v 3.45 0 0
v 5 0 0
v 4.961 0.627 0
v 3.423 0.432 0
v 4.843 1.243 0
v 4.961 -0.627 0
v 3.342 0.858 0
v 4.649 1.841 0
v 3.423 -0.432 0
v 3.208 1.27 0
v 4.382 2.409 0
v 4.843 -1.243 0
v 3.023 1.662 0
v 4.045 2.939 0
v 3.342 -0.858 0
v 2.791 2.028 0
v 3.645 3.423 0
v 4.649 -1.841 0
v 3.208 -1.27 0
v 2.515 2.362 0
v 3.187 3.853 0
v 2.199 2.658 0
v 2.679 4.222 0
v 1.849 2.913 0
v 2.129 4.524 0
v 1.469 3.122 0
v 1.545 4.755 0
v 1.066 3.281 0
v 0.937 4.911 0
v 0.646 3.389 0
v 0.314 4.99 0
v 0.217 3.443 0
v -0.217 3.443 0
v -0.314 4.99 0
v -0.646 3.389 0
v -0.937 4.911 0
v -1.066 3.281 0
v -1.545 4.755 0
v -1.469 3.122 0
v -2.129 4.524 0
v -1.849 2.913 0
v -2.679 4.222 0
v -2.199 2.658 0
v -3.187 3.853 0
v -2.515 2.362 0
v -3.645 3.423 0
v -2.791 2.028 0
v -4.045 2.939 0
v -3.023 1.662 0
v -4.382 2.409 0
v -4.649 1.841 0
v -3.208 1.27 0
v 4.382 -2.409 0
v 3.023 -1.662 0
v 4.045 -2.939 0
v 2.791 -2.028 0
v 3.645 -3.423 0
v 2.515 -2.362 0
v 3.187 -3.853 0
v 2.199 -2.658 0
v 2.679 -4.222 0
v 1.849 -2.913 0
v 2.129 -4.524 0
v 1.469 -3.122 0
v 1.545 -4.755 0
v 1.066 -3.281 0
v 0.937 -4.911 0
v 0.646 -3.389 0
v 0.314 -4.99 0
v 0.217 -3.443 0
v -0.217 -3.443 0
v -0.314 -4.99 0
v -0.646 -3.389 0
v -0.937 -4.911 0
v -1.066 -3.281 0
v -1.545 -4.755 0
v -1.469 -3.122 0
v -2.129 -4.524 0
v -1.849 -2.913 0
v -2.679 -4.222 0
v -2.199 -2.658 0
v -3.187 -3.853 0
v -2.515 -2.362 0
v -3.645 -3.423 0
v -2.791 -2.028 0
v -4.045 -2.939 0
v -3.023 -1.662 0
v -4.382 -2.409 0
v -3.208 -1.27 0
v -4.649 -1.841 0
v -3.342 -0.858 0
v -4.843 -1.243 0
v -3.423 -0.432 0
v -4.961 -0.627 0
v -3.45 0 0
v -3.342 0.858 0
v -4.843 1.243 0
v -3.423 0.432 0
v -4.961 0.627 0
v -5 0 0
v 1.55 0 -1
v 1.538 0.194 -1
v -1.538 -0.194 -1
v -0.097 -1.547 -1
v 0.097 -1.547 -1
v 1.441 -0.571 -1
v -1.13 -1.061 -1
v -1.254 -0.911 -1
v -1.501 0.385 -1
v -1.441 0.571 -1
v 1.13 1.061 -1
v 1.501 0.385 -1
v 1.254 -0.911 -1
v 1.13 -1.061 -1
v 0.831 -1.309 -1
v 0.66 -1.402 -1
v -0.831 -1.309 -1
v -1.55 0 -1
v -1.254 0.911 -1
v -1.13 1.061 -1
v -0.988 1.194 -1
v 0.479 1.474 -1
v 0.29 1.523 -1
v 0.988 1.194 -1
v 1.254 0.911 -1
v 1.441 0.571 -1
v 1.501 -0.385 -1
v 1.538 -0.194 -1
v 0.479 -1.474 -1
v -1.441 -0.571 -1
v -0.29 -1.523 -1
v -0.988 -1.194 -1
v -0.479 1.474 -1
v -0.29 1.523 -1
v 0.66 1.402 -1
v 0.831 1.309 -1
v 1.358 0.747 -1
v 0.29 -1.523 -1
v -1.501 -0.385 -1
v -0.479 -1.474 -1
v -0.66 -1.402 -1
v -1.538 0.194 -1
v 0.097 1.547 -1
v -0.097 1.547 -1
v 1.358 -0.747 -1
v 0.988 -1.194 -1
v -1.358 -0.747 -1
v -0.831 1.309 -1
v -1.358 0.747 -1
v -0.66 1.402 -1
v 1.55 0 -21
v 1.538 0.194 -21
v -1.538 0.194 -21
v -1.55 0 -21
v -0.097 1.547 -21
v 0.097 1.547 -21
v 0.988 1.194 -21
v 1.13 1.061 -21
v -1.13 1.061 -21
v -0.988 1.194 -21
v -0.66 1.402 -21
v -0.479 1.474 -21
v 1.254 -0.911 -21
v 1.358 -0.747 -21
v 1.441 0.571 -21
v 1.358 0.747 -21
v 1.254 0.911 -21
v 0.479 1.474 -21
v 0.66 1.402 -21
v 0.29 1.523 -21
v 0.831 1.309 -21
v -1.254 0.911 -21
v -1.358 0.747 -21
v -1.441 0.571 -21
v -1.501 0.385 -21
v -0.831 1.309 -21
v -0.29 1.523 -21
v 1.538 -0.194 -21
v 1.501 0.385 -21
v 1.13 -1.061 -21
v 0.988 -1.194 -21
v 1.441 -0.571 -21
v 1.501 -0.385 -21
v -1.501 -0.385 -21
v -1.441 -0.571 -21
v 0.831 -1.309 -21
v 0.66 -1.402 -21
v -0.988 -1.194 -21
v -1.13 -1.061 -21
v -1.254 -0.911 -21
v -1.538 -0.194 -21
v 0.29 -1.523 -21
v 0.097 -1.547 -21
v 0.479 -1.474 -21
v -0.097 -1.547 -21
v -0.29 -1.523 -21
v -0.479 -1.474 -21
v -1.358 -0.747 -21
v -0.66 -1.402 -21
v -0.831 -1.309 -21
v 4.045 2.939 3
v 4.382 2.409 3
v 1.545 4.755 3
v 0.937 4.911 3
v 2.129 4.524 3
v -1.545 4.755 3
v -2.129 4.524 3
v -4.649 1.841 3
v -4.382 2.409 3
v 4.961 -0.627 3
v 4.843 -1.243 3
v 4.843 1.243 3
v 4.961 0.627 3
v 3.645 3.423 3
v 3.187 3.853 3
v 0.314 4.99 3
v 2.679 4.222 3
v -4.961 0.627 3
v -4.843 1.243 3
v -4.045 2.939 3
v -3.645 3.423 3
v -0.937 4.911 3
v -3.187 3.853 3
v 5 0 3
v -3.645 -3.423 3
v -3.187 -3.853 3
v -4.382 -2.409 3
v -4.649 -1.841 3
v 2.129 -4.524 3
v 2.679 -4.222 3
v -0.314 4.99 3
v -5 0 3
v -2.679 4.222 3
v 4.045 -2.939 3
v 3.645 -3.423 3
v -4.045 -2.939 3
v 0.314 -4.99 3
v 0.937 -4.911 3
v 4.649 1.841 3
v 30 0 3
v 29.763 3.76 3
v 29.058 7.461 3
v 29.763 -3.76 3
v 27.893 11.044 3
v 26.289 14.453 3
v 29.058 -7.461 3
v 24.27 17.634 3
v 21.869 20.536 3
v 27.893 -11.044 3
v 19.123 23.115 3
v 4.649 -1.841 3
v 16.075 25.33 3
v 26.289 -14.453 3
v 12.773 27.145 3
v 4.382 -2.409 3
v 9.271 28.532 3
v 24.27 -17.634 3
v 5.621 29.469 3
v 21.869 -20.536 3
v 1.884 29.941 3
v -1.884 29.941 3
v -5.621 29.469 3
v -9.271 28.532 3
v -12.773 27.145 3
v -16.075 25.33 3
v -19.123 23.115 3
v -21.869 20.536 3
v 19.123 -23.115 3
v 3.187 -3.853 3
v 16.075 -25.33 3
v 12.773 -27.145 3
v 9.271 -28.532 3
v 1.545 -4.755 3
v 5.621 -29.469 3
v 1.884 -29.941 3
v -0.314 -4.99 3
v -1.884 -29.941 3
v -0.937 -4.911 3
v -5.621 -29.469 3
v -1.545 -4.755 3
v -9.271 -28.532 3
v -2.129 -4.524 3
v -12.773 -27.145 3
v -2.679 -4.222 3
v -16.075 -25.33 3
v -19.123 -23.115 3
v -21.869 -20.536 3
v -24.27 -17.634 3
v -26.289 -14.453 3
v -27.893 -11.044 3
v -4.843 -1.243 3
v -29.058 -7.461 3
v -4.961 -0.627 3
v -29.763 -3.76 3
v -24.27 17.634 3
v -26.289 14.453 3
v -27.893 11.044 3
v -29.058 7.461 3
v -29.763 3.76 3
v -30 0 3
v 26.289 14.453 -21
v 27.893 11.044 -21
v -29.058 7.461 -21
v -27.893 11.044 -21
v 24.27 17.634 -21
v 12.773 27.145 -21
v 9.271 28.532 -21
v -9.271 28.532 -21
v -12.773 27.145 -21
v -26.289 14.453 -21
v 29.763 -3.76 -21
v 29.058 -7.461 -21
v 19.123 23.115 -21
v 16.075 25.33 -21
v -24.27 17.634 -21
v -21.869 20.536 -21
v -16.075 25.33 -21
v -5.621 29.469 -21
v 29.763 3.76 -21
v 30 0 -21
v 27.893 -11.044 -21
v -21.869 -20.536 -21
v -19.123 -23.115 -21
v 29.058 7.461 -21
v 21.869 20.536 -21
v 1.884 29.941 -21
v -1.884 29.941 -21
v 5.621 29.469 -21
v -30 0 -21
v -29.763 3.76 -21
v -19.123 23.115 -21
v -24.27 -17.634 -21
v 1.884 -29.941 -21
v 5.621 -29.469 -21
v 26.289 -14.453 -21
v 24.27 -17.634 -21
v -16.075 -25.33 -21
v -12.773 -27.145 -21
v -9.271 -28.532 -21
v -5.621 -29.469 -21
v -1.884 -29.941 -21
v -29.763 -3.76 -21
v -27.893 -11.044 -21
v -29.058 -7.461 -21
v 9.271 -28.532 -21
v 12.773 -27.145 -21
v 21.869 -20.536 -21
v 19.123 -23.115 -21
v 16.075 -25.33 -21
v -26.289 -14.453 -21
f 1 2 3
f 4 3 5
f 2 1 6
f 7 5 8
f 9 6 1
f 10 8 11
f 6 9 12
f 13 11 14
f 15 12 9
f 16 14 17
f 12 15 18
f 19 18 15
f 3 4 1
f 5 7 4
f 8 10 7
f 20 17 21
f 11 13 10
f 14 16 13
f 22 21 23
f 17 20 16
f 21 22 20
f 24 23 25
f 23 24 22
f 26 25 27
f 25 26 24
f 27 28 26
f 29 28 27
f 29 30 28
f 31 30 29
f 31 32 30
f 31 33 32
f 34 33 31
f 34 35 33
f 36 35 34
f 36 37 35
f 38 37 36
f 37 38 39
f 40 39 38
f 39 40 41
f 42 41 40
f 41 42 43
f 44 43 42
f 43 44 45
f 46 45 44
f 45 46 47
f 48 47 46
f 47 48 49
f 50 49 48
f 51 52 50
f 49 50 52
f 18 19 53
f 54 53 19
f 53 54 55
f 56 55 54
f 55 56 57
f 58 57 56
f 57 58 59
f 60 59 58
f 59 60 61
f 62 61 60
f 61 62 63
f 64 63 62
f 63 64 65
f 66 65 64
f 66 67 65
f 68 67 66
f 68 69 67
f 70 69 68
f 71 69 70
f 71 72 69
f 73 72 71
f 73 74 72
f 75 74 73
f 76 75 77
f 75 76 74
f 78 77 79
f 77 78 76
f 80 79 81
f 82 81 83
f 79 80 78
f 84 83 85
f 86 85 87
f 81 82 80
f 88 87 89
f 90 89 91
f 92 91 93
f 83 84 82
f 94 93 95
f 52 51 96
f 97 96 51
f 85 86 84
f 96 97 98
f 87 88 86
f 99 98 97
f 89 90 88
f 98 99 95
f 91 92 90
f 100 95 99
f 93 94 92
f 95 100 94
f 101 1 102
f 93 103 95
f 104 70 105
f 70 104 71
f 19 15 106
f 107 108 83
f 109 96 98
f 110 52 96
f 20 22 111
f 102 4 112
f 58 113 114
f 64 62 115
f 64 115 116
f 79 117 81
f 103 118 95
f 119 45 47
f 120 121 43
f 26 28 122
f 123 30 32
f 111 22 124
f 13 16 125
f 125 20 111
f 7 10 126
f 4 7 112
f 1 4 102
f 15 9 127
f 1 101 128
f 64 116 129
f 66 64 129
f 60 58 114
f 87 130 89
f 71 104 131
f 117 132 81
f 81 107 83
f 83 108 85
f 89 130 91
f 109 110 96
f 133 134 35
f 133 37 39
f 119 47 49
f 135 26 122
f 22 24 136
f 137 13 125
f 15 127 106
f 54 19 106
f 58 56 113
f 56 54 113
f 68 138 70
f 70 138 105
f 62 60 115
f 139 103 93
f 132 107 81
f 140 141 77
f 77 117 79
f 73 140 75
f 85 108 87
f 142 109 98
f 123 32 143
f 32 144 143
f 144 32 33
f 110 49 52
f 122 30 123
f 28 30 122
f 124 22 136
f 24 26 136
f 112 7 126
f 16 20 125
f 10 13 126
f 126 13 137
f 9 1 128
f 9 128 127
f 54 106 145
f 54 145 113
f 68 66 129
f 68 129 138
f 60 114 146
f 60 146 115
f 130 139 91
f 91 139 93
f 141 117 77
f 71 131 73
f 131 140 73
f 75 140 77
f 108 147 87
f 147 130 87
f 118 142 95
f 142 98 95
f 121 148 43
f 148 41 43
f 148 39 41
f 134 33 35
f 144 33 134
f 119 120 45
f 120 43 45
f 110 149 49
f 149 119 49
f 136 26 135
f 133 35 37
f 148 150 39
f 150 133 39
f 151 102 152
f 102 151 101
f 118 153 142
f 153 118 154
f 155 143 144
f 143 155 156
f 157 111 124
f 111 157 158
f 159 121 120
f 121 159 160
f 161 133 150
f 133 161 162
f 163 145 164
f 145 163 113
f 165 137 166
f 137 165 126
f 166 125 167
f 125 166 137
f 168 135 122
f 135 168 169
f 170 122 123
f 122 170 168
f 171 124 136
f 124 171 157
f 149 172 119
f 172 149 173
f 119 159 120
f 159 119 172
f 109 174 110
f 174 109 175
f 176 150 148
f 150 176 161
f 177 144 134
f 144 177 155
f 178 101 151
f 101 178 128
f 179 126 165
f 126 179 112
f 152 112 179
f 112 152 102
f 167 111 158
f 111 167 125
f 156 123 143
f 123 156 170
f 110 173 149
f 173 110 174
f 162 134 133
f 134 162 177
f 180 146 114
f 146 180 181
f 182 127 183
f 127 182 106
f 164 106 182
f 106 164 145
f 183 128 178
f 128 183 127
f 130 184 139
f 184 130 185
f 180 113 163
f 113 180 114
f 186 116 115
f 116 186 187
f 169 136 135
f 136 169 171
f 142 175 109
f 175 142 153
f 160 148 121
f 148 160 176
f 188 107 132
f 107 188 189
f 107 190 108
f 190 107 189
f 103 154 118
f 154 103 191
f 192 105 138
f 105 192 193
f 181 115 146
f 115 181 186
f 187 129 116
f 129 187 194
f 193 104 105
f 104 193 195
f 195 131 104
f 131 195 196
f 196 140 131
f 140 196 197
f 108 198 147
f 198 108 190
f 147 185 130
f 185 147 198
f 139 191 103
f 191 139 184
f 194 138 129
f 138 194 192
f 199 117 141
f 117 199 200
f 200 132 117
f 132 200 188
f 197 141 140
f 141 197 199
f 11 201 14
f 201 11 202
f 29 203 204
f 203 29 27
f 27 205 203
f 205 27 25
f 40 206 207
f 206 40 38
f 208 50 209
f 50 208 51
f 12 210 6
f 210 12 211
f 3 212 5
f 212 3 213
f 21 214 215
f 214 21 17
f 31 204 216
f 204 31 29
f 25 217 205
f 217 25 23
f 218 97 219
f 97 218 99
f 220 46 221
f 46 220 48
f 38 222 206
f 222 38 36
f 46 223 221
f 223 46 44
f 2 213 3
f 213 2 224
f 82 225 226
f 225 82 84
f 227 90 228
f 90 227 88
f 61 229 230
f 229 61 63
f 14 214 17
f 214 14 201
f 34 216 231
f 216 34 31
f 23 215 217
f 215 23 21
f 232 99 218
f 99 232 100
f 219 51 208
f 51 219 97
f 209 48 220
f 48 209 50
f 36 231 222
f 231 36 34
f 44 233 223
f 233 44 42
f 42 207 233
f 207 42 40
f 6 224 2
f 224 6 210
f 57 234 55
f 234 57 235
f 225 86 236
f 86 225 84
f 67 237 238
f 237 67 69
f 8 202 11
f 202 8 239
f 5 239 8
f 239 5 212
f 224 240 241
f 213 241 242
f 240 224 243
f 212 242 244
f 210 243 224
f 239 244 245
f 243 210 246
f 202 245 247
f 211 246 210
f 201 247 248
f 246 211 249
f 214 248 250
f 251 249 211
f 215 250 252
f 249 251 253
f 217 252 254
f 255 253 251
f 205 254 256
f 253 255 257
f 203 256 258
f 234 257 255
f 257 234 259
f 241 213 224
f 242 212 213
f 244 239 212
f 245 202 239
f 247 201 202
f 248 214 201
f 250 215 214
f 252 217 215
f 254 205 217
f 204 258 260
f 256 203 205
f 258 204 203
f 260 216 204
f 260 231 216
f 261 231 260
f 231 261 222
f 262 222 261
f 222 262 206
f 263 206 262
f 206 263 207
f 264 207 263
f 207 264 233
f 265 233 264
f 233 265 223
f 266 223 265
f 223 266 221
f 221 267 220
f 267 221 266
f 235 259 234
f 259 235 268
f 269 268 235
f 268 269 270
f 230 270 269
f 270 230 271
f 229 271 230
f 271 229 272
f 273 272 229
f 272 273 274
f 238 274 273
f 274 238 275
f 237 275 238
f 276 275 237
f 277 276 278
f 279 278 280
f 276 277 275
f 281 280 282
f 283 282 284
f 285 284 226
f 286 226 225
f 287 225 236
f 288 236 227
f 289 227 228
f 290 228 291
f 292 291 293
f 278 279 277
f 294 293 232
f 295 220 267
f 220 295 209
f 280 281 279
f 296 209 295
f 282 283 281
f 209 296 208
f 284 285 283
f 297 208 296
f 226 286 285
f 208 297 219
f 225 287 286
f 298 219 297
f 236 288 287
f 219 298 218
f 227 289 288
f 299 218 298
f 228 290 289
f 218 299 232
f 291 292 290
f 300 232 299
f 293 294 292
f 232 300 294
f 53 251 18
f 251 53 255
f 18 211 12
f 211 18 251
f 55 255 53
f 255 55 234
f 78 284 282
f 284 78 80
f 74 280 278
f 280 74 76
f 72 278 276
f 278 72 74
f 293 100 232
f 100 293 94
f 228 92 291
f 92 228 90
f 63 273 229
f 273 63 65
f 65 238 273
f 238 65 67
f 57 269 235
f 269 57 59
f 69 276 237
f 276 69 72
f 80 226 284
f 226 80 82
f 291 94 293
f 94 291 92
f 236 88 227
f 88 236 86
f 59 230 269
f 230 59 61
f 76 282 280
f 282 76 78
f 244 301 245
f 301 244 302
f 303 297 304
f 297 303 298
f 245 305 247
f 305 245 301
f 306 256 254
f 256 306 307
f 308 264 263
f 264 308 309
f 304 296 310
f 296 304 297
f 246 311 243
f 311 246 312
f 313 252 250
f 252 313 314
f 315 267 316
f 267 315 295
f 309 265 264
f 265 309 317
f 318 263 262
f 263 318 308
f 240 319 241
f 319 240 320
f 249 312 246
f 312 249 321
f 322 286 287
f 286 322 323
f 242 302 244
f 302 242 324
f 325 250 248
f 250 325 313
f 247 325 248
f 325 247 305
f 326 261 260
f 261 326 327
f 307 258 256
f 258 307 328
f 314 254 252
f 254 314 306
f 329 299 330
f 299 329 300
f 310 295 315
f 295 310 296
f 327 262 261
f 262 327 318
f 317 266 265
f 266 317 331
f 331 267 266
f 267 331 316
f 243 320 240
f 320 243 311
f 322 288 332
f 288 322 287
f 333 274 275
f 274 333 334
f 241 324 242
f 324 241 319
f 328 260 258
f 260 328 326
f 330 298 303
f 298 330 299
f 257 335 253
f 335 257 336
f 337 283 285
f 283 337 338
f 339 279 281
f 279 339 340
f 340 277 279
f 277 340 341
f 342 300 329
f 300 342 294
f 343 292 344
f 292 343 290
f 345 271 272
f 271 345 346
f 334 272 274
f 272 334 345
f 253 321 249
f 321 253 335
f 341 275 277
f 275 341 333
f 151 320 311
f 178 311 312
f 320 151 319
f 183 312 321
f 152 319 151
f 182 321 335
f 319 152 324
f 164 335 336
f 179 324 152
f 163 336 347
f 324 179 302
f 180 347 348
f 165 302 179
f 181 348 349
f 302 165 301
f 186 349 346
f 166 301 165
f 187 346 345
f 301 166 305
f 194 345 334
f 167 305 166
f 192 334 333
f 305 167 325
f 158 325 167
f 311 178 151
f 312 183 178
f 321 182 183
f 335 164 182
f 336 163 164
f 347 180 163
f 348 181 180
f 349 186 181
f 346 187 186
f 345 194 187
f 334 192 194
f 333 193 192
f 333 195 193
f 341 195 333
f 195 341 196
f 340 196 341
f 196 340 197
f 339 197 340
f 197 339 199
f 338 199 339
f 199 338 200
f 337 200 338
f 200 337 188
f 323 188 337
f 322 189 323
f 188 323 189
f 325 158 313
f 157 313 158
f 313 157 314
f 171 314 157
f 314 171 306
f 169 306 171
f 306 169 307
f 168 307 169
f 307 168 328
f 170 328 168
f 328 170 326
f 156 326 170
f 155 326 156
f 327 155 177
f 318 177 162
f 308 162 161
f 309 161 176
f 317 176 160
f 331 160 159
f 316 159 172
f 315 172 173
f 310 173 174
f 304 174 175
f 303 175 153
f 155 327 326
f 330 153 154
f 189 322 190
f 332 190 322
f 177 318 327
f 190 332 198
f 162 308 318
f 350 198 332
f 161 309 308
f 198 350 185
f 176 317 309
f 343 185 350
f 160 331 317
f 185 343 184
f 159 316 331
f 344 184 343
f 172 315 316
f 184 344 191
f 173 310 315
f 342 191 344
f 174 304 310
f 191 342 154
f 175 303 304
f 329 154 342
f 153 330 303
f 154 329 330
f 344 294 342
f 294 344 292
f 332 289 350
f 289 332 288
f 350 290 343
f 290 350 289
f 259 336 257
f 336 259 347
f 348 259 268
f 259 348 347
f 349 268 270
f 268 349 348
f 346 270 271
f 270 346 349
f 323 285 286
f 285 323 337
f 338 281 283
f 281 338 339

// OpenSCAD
$fn = 50;


difference() {
	union() {
		translate(v = [0, 0, -21.0000000000]) {
			cylinder(h = 24, r = 30.0000000000);
		}
	}
	union() {
		translate(v = [0, 0, 0]) {
			rotate(a = [0, 0, 0]) {
				difference() {
					union() {
						translate(v = [0, 0, -24.0000000000]) {
							cylinder(h = 24, r = 1.2500000000);
						}
						translate(v = [0, 0, -1.0000000000]) {
							cylinder(h = 1.0000000000, r1 = 1.5500000000, r2 = 3.4500000000);
						}
						translate(v = [0, 0, -24.0000000000]) {
							cylinder(h = 24, r = 1.5500000000);
						}
						translate(v = [0, 0, -24.0000000000]) {
							cylinder(h = 24, r = 1.2500000000);
						}
					}
					union();
				}
			}
		}
		#cylinder(h = 3, r = 5.0000000000);
	}
}
